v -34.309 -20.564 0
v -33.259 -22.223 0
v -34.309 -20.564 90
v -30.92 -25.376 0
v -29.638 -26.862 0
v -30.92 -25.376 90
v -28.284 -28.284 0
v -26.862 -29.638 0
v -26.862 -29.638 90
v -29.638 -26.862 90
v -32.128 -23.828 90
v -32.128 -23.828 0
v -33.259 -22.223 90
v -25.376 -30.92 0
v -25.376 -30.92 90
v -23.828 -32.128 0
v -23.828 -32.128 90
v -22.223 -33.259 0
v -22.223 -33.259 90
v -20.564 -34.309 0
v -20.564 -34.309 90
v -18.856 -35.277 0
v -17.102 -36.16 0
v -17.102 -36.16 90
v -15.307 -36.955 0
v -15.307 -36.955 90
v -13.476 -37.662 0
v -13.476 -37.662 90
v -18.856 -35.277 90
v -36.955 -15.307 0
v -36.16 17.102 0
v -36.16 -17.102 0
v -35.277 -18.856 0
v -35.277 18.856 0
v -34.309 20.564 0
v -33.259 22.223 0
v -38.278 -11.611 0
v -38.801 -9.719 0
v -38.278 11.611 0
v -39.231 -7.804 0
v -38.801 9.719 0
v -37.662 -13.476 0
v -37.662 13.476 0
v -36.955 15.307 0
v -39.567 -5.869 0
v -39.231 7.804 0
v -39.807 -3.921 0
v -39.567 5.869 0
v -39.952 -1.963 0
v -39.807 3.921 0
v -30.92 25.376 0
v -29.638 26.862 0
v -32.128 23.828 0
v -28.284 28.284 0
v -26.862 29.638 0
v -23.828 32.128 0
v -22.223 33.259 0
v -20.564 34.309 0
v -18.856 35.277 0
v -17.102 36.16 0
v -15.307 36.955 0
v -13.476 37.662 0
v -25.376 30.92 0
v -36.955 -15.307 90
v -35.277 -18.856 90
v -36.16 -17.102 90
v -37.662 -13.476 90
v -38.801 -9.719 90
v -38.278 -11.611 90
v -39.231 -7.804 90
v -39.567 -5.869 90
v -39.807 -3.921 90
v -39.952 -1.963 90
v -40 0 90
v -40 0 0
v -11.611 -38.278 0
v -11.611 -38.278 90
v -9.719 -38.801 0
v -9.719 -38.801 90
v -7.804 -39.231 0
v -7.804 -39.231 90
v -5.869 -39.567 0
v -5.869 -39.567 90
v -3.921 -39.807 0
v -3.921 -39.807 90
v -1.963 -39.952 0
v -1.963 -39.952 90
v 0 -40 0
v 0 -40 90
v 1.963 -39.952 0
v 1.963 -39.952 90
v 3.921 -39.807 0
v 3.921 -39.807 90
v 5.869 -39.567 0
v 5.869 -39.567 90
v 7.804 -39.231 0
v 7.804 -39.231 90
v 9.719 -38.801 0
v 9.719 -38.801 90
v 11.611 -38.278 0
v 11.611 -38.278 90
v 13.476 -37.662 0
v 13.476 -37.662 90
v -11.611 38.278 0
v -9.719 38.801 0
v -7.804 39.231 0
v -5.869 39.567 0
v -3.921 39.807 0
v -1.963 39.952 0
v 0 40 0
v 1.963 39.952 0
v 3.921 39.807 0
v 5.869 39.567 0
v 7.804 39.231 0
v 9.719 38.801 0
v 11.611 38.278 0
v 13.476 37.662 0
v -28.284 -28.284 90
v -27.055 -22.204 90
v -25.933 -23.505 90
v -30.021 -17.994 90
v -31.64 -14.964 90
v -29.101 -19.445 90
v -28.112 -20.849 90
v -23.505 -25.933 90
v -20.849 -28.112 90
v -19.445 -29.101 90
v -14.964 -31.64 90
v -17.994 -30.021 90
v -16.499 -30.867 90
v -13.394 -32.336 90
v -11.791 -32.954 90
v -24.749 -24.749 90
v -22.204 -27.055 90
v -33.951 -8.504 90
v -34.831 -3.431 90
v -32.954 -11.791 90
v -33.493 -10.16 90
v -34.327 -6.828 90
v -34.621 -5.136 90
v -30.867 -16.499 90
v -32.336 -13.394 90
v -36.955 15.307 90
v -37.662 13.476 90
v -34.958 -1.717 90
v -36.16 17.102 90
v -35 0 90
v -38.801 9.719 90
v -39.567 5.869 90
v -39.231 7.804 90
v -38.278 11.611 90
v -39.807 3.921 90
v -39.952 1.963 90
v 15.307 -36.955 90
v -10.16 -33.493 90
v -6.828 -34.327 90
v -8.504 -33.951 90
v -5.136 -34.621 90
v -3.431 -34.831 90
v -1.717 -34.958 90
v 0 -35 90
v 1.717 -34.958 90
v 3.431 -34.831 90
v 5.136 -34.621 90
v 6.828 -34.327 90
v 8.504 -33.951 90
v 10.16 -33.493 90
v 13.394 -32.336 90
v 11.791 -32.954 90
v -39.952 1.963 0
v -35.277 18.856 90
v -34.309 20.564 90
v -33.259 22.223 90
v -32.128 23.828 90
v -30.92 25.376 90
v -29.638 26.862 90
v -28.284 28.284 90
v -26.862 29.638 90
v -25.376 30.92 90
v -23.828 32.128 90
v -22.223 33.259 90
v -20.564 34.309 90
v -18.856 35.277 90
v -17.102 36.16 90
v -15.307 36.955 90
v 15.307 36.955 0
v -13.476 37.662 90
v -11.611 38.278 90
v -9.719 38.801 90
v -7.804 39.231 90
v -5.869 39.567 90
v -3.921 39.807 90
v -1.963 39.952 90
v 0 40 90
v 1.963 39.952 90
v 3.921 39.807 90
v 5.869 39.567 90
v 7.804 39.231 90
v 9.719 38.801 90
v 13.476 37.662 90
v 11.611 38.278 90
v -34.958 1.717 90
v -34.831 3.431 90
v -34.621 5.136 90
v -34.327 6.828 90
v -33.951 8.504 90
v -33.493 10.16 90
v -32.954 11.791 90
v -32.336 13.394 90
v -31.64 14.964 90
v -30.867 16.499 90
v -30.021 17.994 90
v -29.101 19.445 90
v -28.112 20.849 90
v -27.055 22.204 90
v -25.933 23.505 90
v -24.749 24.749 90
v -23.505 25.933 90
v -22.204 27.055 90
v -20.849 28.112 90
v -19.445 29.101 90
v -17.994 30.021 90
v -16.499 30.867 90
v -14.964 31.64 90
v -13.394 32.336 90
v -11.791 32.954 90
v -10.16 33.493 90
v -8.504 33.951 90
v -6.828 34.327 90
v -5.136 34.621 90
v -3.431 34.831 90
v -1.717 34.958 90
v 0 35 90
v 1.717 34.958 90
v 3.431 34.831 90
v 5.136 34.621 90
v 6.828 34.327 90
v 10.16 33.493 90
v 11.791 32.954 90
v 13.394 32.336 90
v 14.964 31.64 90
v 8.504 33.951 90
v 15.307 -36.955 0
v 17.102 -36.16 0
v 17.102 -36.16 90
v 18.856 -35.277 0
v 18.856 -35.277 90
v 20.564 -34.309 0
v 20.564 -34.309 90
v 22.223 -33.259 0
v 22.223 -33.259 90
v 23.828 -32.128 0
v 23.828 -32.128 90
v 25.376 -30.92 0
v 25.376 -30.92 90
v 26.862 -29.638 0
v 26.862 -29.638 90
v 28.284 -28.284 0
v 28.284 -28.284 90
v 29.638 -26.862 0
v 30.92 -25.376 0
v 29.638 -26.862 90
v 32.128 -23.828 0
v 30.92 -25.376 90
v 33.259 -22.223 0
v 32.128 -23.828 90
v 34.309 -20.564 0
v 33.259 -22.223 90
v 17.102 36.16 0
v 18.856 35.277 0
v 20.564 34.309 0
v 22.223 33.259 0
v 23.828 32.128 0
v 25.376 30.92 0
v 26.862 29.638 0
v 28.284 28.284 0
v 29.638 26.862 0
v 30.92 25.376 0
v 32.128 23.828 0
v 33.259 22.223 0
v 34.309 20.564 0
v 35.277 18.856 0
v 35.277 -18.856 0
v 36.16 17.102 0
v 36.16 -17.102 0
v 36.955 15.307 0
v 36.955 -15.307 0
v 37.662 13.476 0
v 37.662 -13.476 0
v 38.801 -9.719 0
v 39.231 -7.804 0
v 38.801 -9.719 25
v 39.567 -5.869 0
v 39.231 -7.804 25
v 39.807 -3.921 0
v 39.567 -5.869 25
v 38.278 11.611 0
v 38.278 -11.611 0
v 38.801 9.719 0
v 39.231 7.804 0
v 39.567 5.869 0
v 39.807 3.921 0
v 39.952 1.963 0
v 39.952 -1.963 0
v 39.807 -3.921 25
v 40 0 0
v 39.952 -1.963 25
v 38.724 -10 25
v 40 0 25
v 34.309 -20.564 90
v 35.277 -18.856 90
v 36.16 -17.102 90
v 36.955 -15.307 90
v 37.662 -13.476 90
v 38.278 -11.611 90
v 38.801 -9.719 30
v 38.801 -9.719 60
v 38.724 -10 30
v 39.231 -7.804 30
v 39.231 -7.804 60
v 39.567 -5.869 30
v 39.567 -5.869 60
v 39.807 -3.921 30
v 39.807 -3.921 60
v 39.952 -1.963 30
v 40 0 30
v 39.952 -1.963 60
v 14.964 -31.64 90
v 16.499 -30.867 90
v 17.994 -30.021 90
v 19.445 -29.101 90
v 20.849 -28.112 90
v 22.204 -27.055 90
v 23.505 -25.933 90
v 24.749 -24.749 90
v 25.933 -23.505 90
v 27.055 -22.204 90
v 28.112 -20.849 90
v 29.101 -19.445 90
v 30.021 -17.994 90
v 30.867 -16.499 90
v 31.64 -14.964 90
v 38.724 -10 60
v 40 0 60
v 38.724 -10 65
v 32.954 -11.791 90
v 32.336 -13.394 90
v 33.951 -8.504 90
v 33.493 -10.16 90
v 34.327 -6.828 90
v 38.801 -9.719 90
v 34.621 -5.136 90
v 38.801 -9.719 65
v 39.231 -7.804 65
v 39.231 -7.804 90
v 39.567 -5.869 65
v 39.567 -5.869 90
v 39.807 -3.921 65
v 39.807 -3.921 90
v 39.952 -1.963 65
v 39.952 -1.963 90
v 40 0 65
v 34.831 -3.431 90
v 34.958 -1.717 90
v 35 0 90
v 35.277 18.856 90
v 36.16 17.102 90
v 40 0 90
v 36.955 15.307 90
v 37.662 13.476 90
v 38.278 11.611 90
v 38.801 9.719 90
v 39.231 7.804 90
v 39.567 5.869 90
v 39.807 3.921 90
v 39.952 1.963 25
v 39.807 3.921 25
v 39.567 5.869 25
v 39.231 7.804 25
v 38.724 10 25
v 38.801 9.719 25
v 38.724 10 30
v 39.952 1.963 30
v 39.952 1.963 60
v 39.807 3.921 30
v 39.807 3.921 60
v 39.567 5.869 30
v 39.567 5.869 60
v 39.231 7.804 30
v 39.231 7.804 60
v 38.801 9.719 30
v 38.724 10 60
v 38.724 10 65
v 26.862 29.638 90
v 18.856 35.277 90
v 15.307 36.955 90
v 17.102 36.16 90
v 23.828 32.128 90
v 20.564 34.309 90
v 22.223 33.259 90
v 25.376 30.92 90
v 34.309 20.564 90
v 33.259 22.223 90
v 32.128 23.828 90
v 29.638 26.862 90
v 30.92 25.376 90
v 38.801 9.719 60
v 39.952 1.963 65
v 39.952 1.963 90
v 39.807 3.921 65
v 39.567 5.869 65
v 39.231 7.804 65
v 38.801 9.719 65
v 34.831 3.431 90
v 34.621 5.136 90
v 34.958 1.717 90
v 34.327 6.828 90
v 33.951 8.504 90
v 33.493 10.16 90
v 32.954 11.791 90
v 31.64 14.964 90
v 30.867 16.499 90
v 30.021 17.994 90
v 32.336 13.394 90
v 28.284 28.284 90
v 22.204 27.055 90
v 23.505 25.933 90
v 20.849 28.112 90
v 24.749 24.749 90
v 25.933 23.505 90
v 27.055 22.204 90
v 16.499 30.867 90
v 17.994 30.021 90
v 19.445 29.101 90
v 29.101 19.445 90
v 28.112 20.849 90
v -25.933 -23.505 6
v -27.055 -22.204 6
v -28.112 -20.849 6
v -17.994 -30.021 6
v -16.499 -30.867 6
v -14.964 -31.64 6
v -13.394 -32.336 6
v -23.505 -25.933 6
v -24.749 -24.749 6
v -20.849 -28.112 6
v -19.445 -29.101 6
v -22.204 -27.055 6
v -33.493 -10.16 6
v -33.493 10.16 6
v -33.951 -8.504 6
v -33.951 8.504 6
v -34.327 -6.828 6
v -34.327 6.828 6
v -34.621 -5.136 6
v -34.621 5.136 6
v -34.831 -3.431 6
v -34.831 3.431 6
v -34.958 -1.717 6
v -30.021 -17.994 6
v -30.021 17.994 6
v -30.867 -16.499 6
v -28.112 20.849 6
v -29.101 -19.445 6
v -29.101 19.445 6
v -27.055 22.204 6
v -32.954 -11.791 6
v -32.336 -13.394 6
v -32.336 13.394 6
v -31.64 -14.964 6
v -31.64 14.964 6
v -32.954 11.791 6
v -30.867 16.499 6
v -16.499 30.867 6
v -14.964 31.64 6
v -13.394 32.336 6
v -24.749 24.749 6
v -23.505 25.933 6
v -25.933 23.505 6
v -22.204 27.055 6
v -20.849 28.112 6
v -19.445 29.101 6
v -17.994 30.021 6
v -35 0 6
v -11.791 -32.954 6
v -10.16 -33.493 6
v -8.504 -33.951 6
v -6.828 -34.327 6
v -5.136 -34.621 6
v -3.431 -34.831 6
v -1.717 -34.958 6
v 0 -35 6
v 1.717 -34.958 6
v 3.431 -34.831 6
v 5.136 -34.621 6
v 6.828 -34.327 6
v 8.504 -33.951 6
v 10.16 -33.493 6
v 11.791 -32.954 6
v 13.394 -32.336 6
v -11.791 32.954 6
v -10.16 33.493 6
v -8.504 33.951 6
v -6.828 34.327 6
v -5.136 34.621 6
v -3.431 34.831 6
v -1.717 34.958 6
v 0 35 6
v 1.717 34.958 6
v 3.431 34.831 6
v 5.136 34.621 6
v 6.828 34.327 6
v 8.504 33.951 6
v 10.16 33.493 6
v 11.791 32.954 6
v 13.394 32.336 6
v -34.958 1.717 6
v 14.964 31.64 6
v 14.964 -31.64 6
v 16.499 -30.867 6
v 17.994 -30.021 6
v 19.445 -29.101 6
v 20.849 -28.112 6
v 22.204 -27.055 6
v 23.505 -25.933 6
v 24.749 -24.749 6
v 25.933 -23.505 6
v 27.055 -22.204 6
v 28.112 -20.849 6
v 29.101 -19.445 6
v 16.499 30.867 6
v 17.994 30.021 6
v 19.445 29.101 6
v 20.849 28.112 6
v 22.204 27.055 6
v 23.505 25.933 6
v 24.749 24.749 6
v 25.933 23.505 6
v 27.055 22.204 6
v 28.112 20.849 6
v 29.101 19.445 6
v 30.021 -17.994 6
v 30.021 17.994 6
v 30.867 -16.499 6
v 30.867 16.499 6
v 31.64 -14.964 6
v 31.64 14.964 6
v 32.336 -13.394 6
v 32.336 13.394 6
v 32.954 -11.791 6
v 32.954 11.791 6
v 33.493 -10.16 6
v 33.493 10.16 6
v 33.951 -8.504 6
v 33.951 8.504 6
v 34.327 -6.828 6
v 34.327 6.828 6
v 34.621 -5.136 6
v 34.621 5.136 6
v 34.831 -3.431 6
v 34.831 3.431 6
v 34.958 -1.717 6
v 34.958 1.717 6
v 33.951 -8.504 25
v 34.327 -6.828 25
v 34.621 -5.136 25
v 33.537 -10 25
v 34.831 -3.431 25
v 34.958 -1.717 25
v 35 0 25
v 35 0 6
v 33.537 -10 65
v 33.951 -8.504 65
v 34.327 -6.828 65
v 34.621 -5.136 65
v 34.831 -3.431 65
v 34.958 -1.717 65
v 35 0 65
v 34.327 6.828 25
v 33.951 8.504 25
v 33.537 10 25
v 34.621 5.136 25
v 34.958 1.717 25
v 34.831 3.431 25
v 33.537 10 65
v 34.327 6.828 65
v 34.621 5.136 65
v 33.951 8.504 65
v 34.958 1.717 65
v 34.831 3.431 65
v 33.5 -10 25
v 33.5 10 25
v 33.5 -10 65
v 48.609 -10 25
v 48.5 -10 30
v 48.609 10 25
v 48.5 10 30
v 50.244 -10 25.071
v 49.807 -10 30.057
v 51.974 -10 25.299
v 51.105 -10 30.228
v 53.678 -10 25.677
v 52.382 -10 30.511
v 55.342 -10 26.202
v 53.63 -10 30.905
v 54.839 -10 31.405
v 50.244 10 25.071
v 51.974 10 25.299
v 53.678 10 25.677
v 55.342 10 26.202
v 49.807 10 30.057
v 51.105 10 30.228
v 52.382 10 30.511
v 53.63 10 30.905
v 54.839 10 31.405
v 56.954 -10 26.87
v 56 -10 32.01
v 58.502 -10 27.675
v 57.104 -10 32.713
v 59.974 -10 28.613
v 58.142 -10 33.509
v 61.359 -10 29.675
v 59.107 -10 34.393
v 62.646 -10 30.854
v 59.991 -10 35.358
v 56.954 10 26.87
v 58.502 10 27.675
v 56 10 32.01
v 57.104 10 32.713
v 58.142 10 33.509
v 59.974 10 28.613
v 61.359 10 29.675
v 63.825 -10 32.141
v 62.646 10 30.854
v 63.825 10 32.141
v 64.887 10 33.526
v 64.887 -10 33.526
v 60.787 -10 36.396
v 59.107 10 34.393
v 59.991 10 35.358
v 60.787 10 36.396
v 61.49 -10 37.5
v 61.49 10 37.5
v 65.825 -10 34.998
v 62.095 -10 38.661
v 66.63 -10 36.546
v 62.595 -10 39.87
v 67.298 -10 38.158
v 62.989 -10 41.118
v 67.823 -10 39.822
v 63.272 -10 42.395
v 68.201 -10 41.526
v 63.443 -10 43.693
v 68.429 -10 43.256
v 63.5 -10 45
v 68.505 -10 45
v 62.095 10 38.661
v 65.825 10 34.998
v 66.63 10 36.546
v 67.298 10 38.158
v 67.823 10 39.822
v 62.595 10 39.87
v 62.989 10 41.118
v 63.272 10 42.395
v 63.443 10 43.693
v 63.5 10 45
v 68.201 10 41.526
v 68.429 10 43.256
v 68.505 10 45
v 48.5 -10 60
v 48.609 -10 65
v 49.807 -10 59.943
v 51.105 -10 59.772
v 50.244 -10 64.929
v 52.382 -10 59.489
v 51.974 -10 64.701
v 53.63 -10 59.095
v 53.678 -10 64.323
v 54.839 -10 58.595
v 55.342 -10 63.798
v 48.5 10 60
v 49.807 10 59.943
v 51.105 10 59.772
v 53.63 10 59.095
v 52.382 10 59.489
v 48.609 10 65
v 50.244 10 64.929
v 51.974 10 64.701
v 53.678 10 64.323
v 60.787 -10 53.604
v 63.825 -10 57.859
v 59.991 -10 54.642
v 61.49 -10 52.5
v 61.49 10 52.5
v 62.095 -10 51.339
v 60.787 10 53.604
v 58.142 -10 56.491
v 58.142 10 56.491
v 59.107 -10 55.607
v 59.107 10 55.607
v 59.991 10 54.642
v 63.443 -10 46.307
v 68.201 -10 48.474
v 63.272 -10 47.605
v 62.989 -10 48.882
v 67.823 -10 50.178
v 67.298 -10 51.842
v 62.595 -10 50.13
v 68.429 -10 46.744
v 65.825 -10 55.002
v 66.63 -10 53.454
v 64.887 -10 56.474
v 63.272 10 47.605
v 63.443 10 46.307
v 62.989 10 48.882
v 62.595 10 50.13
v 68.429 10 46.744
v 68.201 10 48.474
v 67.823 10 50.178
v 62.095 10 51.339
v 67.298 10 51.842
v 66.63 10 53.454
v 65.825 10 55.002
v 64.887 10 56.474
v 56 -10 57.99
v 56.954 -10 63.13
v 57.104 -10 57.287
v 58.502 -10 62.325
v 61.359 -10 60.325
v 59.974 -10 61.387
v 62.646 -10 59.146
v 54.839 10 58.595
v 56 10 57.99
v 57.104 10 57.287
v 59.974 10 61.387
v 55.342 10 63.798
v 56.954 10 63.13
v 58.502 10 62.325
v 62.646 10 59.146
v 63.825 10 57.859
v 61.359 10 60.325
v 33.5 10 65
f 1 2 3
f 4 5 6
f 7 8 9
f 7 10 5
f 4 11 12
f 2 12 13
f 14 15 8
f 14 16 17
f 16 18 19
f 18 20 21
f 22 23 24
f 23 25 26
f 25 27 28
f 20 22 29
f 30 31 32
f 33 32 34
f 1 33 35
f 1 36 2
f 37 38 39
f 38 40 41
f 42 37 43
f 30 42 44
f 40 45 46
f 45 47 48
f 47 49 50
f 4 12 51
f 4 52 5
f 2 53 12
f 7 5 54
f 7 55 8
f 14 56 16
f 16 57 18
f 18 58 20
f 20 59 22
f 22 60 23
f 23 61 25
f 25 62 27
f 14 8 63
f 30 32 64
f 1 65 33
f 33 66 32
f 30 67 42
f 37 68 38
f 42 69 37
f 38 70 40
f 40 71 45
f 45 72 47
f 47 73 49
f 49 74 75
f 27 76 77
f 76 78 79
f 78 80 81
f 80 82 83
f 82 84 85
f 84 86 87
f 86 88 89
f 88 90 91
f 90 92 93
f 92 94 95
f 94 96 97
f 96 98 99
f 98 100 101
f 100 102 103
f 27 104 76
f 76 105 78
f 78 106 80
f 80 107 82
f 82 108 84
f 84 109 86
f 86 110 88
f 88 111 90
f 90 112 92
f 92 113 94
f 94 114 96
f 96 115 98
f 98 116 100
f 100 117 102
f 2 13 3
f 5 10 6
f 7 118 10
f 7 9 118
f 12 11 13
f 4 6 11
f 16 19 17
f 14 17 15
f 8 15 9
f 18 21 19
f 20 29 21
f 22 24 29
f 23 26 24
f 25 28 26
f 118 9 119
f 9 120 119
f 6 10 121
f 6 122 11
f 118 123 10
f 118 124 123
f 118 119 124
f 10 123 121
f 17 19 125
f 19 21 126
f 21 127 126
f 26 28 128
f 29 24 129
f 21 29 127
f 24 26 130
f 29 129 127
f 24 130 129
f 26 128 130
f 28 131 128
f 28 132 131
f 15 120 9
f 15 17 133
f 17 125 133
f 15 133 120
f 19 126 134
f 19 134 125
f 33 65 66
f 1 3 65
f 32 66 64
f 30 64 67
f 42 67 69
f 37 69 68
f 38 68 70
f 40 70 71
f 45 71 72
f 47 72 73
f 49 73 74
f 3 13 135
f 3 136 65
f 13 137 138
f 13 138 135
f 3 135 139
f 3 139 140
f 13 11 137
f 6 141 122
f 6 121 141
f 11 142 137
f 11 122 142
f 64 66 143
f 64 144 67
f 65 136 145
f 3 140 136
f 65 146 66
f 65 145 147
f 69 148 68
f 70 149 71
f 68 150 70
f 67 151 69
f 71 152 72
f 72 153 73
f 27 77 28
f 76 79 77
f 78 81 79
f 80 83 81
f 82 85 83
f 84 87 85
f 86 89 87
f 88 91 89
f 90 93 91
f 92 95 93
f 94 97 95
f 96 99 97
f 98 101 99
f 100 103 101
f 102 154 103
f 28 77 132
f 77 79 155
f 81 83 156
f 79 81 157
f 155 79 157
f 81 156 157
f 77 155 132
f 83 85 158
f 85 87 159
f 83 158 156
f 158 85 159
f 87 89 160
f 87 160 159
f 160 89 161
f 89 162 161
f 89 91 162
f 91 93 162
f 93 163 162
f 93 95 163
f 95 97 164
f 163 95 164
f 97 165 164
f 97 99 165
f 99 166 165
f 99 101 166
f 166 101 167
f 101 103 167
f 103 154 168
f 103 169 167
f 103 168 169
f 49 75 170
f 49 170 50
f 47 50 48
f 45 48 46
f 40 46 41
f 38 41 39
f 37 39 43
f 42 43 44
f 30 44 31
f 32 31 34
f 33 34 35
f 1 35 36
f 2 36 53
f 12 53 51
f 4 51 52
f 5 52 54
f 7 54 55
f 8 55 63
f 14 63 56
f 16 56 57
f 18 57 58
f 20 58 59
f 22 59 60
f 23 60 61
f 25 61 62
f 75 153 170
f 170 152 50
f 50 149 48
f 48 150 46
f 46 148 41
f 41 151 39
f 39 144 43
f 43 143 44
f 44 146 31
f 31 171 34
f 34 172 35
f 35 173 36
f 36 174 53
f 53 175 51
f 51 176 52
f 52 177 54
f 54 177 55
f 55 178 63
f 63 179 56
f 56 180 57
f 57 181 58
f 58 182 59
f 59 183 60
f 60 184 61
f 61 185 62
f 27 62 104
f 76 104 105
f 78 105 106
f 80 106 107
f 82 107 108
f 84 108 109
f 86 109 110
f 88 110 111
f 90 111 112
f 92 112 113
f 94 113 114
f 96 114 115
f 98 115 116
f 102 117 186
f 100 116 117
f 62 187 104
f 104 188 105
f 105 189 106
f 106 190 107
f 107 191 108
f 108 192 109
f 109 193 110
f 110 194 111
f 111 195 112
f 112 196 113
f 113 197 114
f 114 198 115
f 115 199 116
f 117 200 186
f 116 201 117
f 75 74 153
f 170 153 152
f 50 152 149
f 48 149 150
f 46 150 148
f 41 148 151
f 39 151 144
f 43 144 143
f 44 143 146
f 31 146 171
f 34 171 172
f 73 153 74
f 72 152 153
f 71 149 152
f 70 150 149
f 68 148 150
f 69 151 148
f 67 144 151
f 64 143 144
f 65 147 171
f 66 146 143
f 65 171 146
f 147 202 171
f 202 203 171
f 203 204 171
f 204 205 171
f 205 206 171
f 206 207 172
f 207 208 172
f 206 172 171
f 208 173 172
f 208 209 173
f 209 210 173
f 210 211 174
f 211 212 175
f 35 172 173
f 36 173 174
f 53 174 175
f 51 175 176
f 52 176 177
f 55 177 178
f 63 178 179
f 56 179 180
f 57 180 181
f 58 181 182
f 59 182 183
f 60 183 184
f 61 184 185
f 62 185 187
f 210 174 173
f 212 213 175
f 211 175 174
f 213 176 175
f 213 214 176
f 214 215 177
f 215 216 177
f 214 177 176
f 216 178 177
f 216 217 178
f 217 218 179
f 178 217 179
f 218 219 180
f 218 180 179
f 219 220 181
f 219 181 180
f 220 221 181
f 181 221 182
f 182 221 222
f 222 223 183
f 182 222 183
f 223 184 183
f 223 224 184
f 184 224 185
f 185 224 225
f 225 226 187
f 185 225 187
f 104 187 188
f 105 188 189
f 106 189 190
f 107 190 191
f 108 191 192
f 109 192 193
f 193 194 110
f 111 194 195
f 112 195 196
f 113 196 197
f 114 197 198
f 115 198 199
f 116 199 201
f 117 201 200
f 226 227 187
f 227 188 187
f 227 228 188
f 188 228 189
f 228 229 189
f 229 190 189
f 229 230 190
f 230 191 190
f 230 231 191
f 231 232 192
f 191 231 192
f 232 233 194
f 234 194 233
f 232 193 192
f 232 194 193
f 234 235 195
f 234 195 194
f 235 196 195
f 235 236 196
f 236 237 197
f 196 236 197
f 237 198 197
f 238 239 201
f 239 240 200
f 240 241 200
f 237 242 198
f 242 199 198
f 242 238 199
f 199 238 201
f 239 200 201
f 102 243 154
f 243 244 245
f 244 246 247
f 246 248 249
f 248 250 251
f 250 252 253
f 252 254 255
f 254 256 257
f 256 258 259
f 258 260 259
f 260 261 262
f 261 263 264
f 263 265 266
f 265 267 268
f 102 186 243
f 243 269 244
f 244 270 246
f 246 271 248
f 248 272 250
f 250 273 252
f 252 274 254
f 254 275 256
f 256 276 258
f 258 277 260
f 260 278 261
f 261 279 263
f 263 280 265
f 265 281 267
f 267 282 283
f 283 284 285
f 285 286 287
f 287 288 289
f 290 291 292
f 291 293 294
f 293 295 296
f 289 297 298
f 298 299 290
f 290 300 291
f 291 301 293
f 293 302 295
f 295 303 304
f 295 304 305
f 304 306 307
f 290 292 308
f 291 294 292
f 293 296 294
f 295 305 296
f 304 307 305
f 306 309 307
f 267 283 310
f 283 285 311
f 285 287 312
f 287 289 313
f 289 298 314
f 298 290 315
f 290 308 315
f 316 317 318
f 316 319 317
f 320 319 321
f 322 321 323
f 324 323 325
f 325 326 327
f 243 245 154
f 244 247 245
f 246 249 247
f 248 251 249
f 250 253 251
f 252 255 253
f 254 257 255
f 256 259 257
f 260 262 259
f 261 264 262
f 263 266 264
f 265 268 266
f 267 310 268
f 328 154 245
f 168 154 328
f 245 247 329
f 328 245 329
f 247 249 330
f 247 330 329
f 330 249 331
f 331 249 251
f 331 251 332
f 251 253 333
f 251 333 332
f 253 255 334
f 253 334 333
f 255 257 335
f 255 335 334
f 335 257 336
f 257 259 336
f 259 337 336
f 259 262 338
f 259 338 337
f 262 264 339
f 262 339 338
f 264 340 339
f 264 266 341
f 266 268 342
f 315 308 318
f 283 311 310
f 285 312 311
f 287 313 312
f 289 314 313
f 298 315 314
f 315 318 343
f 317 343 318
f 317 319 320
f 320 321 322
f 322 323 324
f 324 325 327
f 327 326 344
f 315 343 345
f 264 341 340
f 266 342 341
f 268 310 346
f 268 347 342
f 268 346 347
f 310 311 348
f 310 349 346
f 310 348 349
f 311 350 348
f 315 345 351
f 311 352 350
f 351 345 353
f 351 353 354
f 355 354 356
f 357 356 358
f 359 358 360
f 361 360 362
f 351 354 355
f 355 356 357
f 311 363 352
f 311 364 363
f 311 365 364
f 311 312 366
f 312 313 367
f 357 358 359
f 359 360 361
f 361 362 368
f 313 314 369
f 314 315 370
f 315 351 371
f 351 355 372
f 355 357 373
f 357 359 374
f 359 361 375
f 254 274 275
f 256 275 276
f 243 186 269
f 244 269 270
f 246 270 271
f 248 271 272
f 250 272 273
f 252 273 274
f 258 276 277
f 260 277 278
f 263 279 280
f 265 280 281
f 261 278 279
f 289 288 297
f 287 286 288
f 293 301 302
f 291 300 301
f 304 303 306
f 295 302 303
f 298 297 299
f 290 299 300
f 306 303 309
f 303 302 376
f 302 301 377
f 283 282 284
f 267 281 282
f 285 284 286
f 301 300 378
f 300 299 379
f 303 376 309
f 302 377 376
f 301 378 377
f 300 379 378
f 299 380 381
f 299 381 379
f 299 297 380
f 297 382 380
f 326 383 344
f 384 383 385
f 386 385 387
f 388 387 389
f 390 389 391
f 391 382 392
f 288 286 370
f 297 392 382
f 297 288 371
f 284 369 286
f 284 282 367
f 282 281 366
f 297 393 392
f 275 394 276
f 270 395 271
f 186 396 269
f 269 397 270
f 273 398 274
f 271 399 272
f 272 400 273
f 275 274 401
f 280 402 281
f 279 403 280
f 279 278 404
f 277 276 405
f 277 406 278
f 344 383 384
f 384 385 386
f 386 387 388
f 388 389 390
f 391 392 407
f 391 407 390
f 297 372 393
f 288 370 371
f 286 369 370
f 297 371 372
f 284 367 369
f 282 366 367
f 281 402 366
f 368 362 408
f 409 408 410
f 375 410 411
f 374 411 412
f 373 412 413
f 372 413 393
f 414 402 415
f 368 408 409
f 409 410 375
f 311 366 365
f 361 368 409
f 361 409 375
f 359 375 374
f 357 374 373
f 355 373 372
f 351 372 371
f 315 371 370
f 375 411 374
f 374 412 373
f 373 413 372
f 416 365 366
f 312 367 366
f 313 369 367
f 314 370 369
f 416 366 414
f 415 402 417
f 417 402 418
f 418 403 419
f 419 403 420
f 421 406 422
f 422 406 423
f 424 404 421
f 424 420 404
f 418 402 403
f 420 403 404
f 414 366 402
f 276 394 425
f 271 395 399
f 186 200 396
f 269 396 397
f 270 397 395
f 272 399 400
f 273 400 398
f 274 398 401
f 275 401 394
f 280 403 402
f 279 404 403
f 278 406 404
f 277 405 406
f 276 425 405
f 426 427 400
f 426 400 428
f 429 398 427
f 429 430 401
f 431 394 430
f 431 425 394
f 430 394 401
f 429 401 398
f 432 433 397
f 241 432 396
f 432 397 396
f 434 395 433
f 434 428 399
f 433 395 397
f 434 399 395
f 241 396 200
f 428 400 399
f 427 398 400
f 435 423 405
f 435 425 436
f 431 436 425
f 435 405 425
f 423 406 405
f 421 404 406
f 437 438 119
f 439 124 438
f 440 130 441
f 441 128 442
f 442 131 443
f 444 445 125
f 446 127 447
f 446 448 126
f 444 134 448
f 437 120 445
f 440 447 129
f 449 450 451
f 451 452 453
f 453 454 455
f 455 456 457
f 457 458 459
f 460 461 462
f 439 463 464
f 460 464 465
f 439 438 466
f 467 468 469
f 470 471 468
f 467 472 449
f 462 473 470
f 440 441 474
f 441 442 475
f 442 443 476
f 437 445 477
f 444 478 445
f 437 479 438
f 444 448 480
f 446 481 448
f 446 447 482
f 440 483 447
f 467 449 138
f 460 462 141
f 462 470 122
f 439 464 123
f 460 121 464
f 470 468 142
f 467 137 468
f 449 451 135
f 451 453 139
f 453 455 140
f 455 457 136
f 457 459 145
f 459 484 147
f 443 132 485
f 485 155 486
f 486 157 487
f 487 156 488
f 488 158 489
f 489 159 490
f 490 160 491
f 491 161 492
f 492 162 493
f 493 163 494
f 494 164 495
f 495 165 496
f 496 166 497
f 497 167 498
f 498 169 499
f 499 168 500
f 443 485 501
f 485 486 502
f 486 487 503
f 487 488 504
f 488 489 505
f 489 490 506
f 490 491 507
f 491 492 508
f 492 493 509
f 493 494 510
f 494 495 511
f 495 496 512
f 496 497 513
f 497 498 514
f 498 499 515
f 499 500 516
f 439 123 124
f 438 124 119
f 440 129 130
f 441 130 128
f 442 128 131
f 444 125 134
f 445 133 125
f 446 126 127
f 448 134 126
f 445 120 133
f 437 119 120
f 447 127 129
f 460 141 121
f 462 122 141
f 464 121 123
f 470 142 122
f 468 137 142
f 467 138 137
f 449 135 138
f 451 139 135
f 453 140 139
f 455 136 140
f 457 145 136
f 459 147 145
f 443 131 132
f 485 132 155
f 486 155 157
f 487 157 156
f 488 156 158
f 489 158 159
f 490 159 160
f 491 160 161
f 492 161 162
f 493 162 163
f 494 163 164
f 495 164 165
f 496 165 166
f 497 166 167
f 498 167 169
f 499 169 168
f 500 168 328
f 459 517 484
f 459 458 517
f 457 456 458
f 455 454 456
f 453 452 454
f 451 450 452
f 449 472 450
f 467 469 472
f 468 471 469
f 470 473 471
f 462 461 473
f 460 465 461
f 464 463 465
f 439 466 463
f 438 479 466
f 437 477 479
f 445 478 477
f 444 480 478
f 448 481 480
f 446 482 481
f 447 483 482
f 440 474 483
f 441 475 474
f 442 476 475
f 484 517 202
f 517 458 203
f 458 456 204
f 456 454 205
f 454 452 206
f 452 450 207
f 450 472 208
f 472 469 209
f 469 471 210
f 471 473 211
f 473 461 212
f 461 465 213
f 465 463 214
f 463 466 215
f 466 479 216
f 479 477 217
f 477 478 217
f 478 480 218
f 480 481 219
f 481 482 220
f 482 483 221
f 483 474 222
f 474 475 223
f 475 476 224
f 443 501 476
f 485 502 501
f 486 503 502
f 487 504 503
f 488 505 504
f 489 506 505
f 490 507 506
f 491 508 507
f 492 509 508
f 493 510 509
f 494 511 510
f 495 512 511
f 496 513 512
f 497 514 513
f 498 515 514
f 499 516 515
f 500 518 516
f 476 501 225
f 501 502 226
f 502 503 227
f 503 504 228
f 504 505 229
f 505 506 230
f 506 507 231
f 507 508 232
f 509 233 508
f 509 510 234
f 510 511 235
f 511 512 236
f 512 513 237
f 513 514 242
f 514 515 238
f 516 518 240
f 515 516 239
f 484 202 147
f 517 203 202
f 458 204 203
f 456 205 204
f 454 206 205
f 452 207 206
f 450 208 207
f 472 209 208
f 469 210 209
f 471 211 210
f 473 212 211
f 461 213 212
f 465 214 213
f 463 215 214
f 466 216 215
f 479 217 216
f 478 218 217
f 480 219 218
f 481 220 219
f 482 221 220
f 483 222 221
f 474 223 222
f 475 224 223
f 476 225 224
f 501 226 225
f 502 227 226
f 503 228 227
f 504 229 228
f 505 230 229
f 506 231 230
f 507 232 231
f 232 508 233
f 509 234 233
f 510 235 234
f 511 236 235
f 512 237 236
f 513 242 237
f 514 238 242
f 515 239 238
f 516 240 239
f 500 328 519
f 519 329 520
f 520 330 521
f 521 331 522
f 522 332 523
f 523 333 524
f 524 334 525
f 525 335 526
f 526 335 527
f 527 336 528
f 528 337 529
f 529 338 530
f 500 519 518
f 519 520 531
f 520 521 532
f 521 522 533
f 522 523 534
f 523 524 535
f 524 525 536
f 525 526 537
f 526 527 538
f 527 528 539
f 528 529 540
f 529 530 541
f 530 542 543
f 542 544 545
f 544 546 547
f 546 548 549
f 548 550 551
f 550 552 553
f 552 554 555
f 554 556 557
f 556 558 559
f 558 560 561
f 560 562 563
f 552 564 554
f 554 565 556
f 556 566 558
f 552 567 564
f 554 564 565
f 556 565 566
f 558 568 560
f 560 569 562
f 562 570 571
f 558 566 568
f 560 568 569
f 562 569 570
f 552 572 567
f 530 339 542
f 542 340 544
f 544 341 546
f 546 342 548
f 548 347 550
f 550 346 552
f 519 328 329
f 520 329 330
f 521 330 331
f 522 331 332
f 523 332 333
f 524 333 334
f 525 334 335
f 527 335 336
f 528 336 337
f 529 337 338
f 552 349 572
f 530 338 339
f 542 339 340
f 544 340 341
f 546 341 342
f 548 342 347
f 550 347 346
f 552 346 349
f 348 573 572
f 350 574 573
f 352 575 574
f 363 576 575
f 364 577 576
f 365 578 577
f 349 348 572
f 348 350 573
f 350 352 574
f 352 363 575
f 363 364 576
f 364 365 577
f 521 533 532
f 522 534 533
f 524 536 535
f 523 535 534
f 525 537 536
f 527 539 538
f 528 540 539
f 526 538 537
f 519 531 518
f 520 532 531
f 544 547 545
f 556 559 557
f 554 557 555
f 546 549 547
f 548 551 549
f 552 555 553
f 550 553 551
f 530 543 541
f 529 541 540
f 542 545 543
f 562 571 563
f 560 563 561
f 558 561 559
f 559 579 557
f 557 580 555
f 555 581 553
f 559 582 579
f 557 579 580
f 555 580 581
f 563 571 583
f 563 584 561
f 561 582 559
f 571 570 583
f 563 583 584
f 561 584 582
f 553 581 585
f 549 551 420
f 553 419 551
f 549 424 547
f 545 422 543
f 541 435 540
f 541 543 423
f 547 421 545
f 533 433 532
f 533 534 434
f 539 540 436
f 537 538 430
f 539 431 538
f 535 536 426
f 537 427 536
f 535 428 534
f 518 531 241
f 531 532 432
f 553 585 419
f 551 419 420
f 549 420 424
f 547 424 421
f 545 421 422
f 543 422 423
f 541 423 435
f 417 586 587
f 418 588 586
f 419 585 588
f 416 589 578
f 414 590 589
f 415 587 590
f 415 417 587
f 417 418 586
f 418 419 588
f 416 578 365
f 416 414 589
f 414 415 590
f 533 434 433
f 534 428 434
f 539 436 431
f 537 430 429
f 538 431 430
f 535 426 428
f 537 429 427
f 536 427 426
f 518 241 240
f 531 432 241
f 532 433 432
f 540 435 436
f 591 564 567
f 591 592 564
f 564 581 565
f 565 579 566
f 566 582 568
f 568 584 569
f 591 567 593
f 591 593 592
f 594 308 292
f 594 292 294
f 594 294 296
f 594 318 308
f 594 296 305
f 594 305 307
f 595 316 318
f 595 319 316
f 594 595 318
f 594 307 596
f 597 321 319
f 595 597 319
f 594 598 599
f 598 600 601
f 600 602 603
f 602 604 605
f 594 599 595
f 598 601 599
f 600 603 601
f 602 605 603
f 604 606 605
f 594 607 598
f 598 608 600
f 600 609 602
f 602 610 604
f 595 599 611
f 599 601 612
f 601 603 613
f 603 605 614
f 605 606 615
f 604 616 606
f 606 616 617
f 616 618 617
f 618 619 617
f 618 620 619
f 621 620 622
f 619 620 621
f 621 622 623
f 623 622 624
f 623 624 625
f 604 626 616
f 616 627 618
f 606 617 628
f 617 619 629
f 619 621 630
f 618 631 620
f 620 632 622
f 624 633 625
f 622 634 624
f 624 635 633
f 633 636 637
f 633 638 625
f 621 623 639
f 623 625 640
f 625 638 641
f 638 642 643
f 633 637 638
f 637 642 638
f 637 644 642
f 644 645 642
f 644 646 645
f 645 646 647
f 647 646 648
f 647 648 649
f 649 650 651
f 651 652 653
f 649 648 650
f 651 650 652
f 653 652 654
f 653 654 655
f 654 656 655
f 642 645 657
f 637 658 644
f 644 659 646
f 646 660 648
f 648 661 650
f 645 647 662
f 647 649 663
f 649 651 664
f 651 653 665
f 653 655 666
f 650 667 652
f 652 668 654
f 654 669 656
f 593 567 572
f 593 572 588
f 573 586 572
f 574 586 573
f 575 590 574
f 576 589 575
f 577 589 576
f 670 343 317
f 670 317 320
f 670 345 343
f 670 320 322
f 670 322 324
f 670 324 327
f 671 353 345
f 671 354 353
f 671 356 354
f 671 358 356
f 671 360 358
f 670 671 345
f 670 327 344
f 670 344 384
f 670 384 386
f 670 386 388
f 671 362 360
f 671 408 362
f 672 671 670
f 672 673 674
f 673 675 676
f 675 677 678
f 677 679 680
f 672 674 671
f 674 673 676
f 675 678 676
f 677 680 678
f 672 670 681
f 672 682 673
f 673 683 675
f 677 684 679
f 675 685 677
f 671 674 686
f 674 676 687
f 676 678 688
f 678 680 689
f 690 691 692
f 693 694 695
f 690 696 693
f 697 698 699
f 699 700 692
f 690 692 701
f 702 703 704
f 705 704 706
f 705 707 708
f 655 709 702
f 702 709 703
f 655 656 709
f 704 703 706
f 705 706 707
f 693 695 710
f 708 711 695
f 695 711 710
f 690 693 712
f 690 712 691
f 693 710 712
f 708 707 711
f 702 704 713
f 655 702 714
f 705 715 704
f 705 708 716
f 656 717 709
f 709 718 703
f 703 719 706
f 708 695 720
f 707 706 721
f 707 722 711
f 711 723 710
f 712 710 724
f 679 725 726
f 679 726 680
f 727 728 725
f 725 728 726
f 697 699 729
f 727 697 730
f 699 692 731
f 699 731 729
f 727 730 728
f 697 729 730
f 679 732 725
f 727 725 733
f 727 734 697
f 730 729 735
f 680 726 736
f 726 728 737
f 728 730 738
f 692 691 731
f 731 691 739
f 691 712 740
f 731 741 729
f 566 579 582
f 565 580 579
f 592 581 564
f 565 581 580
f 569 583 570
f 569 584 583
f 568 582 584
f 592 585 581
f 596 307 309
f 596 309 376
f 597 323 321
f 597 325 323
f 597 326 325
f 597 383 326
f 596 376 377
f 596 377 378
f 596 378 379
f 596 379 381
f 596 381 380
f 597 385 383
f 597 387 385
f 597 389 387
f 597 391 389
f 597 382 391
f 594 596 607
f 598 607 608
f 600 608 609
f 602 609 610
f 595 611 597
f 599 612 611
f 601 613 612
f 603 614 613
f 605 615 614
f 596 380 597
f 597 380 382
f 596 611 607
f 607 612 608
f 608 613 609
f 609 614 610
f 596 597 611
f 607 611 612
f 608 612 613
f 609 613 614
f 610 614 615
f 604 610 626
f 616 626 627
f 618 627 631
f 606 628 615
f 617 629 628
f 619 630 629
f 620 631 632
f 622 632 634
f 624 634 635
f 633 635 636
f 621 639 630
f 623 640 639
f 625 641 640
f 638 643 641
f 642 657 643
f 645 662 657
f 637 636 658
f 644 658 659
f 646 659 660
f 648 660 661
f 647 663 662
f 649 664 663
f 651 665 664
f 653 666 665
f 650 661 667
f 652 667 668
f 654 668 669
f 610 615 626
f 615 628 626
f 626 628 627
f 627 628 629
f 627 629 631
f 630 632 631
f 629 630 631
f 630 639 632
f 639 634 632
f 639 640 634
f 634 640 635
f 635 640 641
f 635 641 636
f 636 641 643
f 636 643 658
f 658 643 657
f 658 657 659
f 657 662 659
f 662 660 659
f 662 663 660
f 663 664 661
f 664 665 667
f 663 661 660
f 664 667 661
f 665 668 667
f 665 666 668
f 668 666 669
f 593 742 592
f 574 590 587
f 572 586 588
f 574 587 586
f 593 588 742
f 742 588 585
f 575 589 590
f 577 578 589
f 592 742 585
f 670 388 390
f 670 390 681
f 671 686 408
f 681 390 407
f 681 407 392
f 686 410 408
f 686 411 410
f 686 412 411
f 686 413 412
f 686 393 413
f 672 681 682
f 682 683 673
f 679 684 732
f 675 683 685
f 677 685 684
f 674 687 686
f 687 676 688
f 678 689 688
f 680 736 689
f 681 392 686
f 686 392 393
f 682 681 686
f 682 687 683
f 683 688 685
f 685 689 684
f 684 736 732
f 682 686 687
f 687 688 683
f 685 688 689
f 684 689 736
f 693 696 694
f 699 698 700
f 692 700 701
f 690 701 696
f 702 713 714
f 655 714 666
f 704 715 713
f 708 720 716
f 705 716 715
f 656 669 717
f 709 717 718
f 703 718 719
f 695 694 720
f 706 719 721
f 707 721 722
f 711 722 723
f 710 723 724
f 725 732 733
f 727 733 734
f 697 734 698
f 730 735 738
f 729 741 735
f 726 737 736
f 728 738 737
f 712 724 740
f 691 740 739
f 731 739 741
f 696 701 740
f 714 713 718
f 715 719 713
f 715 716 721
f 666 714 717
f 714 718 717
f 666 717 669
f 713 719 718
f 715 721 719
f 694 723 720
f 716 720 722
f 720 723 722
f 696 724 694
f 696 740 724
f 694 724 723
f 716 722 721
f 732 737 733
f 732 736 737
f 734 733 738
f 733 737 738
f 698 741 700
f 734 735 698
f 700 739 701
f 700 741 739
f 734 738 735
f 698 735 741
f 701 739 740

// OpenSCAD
$fn = 128;

module d_profile(width, height) {
    R = height / 2;
    rect_w = max(width - R, 0.01);
    pts = concat(
        [[0, -R], [rect_w, -R]],
        [for (a = [-90:5:90]) [rect_w + R * cos(a), R * sin(a)]],
        [[rect_w, R], [0, R], [0, -R]]
    );
    polygon(points = pts);
}

module mug_body() {
    difference() {
        cylinder(h = 90, r = 40);
        translate([0, 0, 6]) cylinder(h = 84, r = 35);
    }
}

module handle() {
    inner_w = 25;
    inner_h = 30;
    wall = 5;
    depth = 20;
    translate([38.5, 0, 45])
        rotate([90, 0, 0])
            linear_extrude(height = depth, center = true, convexity = 10)
                difference() {
                    offset(delta = wall) d_profile(inner_w, inner_h);
                    d_profile(inner_w, inner_h);
                }
}

union() {
    mug_body();
    handle();
}
